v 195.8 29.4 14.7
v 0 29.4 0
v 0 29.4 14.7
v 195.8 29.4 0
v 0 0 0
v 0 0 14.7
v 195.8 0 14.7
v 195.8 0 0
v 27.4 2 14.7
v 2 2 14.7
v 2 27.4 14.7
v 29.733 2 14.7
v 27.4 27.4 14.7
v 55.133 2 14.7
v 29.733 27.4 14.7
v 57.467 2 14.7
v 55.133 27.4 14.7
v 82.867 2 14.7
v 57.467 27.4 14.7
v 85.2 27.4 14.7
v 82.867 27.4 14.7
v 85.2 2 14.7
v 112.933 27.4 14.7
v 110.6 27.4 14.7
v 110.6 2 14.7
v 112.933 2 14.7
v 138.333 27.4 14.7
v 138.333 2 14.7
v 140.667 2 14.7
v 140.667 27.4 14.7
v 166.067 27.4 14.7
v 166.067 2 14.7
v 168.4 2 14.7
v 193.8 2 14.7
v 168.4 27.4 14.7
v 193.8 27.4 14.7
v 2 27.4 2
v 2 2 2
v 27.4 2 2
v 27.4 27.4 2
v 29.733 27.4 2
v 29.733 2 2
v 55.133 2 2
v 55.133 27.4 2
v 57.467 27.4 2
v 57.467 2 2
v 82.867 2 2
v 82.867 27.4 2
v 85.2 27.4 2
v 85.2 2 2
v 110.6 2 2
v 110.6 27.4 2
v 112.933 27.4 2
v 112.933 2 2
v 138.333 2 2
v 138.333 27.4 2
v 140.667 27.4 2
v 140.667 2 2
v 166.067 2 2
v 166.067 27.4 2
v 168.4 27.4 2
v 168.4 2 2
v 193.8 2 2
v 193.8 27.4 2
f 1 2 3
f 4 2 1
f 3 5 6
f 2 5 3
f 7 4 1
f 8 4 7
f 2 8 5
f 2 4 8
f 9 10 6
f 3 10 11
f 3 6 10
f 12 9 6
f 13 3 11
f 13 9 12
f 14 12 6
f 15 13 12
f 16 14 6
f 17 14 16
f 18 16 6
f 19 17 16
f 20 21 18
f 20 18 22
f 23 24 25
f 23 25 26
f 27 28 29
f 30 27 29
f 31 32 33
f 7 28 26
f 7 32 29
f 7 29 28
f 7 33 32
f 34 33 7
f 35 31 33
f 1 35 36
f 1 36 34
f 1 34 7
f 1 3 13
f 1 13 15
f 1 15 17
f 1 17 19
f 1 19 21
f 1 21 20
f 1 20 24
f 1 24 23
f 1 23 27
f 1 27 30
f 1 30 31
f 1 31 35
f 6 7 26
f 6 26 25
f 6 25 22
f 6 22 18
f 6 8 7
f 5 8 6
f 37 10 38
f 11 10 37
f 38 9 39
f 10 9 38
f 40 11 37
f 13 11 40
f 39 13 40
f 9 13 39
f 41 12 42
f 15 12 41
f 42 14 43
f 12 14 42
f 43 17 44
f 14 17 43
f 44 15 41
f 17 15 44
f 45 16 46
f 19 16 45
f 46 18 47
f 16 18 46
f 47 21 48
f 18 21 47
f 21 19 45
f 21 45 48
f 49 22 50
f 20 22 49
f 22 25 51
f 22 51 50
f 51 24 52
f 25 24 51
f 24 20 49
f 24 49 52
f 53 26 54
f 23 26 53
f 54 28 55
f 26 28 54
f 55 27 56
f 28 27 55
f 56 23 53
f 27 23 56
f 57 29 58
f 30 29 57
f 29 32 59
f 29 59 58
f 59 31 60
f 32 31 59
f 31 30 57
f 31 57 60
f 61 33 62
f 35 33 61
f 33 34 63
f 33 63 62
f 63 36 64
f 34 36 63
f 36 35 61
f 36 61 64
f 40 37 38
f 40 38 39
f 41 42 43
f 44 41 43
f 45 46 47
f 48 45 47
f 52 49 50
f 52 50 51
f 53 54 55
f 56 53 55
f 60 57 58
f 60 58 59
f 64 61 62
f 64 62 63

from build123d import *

# Parameters (mm, degrees)
SKETCH_W            = 195.8
SKETCH_H            = 29.4
PAD_DEPTH           = 14.7
SKETCH001_W         = 25.4
SKETCH001_H         = 25.4
POCKET_DEPTH        = 12.7
LINEARPATTERN_COUNT = 7
LINEARPATTERN_PITCH = 27.733333


with BuildPart() as part:
    # Sketch → Pad (new body)
    with BuildSketch(Plane.XY):
        with Locations((97.9, 14.7)):
            Rectangle(SKETCH_W, SKETCH_H)
    extrude(amount=PAD_DEPTH)

    # Sketch001 → Pocket (cut)
    with BuildSketch(Plane.XY.offset(14.7)):
        with Locations((14.7, 14.7)):
            Rectangle(SKETCH001_W, SKETCH001_H)
    pocket = extrude(amount=-POCKET_DEPTH, mode=Mode.SUBTRACT)

    # LinearPattern: Pocket ×7
    with Locations(*[(i * LINEARPATTERN_PITCH, 0, 0) for i in range(1, LINEARPATTERN_COUNT)]):
        add(pocket, mode=Mode.SUBTRACT)


solid = part.part
